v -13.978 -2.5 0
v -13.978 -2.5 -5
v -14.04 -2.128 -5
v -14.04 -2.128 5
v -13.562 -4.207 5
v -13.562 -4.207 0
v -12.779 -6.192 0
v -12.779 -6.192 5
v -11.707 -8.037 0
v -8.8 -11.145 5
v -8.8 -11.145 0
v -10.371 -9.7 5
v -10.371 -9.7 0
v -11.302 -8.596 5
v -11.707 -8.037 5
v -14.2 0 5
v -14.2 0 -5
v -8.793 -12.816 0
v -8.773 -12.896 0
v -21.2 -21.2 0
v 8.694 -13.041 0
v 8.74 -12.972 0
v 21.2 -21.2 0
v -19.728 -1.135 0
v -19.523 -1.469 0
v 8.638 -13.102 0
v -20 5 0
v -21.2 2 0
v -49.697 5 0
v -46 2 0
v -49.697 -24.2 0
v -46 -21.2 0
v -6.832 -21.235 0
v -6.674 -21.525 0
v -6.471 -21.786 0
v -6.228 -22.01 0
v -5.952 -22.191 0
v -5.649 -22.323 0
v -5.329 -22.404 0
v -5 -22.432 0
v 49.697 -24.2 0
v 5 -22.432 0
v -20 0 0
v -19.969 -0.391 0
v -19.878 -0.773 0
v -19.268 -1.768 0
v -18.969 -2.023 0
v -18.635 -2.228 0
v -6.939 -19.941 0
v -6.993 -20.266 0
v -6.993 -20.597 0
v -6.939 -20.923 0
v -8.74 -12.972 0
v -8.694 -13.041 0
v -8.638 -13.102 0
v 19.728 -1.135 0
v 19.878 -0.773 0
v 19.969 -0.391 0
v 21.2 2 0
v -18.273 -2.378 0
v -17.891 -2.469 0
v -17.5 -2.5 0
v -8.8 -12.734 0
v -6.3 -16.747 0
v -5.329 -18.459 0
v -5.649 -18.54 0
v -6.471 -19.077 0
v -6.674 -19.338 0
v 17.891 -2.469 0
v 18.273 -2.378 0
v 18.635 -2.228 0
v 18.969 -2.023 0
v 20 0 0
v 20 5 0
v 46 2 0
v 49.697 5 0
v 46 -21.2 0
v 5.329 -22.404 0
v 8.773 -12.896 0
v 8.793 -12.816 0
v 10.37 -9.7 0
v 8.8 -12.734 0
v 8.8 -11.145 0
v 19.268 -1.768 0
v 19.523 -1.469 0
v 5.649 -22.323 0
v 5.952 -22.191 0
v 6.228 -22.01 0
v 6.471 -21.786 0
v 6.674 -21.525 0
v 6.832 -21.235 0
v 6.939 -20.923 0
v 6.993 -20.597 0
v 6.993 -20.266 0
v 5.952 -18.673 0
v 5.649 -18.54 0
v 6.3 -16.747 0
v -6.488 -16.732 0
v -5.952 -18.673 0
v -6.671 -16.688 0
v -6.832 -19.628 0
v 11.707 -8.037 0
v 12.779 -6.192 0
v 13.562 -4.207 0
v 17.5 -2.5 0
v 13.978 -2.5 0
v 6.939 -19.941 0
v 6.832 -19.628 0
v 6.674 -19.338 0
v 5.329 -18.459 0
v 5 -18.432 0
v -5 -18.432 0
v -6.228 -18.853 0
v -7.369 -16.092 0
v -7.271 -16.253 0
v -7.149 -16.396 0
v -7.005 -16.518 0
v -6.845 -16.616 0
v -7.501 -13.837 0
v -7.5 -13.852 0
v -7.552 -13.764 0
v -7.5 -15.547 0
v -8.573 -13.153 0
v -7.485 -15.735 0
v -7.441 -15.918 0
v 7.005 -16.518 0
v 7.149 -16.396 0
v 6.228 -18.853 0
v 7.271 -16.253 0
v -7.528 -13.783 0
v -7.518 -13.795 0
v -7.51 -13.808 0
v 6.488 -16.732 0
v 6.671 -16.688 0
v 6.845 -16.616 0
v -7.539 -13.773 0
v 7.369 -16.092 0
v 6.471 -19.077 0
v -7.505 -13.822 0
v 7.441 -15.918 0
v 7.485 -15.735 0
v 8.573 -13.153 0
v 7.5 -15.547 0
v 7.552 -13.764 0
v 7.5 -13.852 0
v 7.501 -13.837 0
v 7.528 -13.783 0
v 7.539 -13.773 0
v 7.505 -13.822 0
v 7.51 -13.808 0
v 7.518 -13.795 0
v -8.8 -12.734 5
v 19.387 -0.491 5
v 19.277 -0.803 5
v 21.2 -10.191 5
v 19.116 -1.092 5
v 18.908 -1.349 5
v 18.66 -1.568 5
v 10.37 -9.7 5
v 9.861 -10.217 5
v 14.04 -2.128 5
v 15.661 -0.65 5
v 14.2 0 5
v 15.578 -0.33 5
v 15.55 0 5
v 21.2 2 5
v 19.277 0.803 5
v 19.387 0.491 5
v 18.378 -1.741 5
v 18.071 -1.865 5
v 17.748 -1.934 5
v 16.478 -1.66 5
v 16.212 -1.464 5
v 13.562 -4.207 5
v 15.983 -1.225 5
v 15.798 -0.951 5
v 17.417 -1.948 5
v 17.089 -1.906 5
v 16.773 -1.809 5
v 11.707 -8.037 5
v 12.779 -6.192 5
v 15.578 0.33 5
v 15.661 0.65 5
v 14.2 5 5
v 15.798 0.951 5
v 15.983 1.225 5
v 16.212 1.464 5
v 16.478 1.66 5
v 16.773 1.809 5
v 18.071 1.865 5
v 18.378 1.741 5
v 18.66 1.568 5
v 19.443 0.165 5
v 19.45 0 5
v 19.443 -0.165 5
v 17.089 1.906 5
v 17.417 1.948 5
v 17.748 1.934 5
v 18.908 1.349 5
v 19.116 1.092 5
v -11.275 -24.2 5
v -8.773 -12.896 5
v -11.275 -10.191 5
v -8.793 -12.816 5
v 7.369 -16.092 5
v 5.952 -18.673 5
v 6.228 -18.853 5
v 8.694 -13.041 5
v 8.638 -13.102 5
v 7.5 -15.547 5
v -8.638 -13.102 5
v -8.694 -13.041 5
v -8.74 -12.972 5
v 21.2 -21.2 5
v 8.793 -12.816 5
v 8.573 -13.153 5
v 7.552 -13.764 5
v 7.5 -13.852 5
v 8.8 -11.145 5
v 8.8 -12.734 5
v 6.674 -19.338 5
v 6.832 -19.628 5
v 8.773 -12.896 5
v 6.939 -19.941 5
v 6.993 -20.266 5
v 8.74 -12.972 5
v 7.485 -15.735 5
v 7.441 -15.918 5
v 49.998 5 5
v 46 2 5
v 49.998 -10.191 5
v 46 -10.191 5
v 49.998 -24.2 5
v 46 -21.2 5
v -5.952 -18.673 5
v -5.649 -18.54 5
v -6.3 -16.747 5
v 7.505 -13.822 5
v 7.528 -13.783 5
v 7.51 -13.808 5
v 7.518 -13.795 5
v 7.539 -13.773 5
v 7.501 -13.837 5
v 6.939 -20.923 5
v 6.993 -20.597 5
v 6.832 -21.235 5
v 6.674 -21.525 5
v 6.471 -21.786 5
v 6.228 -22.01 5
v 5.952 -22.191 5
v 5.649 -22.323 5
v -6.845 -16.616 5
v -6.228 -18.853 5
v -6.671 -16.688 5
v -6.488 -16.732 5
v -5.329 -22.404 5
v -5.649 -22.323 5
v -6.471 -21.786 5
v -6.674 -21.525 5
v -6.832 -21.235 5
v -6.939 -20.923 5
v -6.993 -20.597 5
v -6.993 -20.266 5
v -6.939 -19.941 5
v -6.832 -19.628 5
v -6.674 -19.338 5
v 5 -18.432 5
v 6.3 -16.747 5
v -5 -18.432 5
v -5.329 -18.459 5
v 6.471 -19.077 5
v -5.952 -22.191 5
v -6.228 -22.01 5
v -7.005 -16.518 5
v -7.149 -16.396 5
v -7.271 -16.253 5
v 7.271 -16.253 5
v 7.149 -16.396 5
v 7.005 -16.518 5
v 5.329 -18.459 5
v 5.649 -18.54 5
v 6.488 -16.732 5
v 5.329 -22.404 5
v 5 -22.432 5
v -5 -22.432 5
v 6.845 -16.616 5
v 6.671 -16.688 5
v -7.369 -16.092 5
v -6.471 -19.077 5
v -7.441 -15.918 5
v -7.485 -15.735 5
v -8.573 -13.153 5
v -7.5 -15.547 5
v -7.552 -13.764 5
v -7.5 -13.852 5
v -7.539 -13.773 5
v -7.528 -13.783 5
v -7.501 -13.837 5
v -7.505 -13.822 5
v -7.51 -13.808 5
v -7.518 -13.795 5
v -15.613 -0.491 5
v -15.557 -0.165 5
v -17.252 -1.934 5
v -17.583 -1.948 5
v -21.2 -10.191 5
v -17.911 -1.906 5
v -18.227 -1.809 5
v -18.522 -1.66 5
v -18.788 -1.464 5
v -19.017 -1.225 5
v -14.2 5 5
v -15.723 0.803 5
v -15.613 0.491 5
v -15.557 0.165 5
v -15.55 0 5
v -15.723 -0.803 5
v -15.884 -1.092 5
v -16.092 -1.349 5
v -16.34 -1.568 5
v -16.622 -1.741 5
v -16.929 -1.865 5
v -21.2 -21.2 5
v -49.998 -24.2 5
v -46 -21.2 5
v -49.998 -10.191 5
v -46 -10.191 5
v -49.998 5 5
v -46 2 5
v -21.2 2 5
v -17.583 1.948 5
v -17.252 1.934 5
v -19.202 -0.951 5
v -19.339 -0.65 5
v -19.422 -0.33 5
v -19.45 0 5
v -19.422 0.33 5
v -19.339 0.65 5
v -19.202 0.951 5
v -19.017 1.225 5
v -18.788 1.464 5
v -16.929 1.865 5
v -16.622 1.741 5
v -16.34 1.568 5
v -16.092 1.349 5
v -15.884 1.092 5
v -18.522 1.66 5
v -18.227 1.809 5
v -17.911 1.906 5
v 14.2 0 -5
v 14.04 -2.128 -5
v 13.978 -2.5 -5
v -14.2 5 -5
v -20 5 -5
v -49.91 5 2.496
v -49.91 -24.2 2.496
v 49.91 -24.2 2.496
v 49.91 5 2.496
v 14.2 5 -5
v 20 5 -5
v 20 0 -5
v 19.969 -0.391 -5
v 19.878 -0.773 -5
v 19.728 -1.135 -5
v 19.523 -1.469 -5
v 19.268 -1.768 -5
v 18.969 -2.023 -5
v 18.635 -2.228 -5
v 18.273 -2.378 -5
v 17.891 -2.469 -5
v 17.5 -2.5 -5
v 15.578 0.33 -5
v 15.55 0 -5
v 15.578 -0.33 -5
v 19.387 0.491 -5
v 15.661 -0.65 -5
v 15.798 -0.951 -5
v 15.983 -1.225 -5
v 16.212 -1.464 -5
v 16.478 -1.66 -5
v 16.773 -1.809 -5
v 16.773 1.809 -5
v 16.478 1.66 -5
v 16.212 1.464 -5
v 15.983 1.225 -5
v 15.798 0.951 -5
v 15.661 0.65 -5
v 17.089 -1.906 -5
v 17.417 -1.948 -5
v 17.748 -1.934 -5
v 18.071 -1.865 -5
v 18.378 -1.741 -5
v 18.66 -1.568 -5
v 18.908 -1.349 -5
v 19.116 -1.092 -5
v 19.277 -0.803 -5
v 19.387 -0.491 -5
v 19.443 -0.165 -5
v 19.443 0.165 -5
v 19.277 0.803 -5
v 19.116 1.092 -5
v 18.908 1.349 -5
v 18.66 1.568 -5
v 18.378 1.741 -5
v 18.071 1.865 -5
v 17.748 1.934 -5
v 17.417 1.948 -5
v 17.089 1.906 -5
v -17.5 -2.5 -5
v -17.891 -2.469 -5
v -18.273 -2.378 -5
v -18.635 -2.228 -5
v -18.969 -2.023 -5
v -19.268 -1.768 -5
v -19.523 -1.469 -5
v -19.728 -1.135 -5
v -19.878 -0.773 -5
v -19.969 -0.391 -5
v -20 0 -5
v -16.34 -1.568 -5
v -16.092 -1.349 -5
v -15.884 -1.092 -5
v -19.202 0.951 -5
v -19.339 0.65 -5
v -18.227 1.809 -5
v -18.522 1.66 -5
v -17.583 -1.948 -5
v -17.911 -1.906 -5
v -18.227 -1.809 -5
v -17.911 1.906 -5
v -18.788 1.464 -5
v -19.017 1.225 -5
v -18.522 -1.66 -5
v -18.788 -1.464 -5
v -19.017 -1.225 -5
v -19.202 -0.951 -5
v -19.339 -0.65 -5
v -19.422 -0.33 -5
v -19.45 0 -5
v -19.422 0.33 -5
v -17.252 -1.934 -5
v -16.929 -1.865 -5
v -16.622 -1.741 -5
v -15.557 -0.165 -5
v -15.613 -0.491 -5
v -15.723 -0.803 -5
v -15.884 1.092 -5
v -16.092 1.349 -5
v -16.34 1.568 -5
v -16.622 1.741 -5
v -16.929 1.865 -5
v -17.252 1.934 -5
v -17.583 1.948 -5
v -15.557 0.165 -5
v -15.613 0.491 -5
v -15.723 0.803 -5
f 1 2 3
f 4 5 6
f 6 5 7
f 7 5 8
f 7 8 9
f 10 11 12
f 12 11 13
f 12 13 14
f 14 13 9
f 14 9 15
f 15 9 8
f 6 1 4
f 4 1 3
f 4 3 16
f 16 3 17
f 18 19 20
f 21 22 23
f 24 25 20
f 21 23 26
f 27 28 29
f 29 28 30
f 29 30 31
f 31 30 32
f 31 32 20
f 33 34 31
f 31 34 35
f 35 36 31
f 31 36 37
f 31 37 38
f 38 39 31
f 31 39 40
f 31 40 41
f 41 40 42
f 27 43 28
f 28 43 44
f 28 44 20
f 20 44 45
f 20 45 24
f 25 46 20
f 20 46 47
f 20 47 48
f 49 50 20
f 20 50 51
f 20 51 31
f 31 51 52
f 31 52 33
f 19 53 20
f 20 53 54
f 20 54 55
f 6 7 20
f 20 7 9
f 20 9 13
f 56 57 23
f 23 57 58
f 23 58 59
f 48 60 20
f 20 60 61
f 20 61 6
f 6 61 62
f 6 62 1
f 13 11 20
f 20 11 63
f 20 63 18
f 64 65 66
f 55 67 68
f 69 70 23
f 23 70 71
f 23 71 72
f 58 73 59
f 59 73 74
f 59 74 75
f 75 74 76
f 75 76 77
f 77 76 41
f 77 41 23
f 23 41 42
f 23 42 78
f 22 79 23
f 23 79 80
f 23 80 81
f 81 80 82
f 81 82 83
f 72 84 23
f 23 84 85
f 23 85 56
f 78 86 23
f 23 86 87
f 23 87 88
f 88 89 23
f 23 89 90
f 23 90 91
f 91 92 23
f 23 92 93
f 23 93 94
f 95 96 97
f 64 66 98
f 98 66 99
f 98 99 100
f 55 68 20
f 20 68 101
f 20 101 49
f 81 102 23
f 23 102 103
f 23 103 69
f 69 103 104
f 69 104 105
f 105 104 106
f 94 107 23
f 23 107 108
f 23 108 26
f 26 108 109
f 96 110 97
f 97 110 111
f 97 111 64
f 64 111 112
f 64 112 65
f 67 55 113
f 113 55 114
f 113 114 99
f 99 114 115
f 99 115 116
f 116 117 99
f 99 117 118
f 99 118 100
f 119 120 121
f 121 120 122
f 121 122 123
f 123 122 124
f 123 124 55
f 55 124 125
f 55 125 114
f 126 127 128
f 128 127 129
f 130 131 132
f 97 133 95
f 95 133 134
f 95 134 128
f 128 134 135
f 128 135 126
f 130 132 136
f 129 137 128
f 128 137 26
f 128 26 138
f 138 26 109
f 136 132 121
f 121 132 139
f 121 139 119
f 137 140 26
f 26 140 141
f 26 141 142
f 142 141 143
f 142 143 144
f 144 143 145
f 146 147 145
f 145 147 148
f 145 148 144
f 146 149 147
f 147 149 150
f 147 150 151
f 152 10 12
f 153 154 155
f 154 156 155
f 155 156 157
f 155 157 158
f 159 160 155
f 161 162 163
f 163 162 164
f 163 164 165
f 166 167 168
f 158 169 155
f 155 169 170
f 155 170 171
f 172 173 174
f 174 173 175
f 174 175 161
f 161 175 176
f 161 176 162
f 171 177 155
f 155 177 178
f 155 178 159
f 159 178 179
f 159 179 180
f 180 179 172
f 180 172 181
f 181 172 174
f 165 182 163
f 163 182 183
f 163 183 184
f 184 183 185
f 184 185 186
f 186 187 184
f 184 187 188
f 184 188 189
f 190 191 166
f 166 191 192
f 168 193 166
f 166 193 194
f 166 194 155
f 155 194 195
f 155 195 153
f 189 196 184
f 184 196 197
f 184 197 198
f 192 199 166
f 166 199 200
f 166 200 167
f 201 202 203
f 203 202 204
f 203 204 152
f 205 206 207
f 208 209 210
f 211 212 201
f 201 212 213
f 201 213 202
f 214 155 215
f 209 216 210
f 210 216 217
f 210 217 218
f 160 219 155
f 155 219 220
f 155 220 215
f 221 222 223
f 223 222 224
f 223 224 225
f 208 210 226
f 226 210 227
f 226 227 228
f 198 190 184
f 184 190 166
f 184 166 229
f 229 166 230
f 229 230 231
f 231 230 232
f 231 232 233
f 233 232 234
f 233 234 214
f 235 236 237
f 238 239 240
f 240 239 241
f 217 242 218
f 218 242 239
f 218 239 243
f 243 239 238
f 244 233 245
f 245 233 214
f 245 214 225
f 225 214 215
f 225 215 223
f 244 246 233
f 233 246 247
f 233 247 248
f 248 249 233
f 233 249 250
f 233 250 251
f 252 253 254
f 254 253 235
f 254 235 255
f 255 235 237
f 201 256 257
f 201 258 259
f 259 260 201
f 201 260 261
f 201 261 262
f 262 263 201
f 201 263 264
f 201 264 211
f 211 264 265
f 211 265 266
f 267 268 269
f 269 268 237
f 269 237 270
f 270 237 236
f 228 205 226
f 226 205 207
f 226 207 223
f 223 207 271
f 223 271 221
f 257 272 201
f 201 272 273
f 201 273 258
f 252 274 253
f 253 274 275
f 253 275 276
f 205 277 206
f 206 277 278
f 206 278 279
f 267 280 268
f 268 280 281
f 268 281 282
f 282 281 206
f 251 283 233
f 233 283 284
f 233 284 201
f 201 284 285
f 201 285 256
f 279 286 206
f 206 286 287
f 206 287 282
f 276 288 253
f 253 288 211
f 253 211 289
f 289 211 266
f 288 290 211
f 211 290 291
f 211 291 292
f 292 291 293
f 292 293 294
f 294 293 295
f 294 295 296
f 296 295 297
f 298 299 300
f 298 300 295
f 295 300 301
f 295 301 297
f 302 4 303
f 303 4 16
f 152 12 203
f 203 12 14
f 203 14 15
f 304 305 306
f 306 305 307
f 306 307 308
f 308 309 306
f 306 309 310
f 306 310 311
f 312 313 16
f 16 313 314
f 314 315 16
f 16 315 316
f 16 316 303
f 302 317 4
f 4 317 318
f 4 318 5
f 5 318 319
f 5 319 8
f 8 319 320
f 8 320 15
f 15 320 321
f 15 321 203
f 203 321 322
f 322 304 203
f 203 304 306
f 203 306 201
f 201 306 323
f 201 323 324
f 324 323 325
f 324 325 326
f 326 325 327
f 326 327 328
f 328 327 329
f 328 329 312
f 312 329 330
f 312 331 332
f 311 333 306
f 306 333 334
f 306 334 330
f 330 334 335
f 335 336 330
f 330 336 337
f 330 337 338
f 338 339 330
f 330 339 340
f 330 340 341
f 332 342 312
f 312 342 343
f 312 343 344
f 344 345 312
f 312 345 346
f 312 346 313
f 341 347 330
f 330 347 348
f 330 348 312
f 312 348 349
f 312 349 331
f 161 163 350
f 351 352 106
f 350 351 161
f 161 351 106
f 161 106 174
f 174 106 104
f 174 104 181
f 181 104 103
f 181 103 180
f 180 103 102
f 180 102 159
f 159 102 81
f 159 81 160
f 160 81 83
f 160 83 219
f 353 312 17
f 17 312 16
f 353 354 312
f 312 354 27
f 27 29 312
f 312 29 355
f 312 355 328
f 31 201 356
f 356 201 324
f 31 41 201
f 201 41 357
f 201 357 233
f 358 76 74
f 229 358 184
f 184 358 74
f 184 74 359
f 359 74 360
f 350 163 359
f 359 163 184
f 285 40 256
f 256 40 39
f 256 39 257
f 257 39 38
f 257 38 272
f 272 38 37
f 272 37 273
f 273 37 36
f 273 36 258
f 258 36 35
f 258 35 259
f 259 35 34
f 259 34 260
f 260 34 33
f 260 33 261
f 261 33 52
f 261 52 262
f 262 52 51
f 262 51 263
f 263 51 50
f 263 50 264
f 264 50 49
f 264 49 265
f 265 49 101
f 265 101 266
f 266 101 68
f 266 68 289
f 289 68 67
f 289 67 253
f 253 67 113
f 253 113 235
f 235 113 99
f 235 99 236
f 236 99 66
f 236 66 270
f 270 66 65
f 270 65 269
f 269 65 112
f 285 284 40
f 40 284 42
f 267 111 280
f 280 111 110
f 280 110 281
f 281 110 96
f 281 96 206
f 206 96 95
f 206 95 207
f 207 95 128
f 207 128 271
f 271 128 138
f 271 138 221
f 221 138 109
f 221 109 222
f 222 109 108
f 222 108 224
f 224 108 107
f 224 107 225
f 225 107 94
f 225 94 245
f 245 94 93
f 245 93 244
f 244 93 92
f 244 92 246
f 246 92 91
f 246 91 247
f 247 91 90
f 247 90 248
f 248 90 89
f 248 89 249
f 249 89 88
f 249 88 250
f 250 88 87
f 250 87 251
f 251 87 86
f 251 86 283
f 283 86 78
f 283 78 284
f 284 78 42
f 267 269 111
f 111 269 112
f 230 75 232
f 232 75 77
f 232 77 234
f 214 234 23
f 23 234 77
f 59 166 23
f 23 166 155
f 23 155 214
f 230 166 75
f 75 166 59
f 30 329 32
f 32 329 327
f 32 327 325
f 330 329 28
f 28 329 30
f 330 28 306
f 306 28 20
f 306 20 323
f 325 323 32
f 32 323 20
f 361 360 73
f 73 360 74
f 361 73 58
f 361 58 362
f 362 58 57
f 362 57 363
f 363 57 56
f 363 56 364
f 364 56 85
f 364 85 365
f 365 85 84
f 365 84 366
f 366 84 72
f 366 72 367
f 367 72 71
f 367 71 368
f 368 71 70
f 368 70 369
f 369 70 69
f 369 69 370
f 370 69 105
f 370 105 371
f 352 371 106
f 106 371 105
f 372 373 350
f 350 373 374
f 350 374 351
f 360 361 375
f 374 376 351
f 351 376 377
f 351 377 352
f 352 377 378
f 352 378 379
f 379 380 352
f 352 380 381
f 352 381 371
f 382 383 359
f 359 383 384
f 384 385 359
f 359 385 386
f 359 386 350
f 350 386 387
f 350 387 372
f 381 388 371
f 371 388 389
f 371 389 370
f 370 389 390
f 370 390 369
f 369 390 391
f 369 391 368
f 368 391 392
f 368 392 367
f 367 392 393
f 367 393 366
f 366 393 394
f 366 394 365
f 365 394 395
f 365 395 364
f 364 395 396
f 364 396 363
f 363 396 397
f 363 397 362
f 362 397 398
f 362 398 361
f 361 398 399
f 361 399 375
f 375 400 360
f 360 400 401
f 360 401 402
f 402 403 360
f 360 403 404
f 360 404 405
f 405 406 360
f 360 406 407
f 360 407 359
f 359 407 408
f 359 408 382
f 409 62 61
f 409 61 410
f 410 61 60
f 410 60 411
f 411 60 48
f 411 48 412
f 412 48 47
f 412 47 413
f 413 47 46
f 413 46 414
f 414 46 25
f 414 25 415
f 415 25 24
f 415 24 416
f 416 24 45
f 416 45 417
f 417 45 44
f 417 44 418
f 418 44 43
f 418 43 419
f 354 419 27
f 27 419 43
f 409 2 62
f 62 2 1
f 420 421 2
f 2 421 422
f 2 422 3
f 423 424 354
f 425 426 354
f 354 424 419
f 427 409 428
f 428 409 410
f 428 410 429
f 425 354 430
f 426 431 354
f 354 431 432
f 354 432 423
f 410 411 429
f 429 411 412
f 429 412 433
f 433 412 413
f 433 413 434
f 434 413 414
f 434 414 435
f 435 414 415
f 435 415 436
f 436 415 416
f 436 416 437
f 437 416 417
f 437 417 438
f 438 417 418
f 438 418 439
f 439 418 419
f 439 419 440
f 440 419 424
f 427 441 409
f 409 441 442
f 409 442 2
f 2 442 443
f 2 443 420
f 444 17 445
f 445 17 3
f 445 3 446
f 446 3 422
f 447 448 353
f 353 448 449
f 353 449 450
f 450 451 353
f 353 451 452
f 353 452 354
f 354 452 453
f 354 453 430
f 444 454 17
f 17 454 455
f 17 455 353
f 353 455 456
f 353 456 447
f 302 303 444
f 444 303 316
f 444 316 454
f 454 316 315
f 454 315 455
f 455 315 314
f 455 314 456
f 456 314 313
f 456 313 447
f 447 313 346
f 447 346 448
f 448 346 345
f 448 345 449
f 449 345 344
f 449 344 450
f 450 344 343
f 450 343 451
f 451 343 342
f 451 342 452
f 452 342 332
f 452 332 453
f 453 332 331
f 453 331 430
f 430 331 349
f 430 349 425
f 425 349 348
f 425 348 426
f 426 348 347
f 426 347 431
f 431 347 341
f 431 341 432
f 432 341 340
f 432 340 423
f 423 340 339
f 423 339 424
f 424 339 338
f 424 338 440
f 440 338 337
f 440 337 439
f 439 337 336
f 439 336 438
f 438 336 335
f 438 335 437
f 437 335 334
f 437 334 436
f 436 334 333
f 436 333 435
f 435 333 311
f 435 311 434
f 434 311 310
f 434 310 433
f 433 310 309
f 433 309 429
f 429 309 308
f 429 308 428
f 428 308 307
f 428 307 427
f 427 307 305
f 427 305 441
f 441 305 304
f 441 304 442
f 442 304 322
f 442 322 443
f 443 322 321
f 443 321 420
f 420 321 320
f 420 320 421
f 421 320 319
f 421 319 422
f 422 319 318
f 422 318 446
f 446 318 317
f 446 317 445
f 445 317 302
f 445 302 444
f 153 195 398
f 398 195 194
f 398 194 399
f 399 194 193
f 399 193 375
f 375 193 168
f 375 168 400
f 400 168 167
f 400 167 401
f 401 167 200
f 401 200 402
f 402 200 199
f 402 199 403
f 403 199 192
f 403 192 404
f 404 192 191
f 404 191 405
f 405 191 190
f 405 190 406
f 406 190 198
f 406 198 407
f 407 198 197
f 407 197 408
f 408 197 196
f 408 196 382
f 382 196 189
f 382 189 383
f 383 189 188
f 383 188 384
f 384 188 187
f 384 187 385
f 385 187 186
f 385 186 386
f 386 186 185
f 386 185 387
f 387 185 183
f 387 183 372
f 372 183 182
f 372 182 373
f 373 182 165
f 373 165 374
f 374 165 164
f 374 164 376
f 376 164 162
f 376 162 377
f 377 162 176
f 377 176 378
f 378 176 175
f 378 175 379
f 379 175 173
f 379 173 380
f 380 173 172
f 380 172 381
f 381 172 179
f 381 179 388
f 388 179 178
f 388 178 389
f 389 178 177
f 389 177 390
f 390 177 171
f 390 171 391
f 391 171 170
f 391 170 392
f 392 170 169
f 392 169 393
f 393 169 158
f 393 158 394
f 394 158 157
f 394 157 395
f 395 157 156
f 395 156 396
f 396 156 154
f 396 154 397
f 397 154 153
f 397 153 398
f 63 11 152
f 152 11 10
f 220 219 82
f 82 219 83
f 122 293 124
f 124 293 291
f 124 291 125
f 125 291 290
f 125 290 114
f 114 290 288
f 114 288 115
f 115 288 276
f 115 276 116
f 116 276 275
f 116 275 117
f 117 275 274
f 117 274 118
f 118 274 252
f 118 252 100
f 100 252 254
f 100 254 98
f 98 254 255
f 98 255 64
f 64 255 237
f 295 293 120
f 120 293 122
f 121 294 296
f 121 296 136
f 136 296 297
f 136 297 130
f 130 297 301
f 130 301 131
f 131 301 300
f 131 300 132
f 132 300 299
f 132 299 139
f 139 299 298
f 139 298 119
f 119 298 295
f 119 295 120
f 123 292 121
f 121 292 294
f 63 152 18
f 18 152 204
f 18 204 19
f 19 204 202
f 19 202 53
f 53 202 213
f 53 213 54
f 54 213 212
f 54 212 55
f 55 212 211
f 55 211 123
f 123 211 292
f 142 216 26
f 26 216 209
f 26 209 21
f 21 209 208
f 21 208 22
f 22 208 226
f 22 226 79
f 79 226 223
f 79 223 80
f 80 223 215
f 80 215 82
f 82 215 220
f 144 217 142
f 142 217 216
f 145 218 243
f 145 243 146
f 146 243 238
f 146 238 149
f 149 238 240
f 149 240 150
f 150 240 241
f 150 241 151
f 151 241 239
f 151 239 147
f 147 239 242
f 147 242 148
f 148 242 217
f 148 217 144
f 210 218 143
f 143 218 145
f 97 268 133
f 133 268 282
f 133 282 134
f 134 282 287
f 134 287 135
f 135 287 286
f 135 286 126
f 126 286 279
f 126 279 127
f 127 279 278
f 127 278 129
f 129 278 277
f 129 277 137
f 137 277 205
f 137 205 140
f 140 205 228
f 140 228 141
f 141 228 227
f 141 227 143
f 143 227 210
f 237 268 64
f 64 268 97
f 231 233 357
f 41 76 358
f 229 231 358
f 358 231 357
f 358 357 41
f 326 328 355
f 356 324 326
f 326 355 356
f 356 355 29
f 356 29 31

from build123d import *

# Parameters (mm, degrees)
BOSS_EXTRUDE1_DEPTH = 5
SKETCH2_W           = 24.8
SKETCH2_H           = 23.2
CUT_EXTRUDE1_DEPTH  = 5
BOSS_EXTRUDE2_START = 5
BOSS_EXTRUDE2_DEPTH = 5
SKETCH4_R           = 1.95
CUT_EXTRUDE2_DEPTH  = 10
CUT_EXTRUDE3_DEPTH  = 5
CUT_EXTRUDE4_DEPTH  = 29.2


with BuildPart() as part:
    # Sketch1 → Boss-Extrude1 (new body)
    with BuildSketch(Plane.XY):
        with BuildLine():
            Line((14.2, 0), (14.2, 5))
            Line((14.2, 5), (50, 5))
            Line((50, 5), (50, -24.2))
            Line((50, -24.2), (-50, -24.2))
            Line((-50, -24.2), (-50, 5))
            Line((-50, 5), (-14.2, 5))
            Line((-14.2, 5), (-14.2, 0))
            ThreePointArc((-14.2, 0), (0, -14.2), (14.2, 0))
        make_face()
        with BuildLine():
            Line((-5, -18.431553888), (5, -18.431553888))
            ThreePointArc((5, -18.431553888), (7, -20.431553888), (5, -22.431553888))
            Line((5, -22.431553888), (-5, -22.431553888))
            ThreePointArc((-5, -22.431553888), (-7, -20.431553888), (-5, -18.431553888))
        make_face(mode=Mode.SUBTRACT)
    extrude(amount=BOSS_EXTRUDE1_DEPTH)

    # Sketch2 → Cut-Extrude1 (cut)
    with BuildSketch(Plane.XY.offset(5)):
        with Locations((-33.6, -9.6)):
            Rectangle(SKETCH2_W, SKETCH2_H)
        with Locations((33.6, -9.6)):
            Rectangle(SKETCH2_W, SKETCH2_H)
    extrude(amount=-CUT_EXTRUDE1_DEPTH, mode=Mode.SUBTRACT)

    # Sketch3 → Boss-Extrude2 (add)
    with BuildSketch(Plane(origin=(0, 0, 0), x_dir=(-1, 0, 0), z_dir=(0, 0, -1)).offset(BOSS_EXTRUDE2_START)):
        with BuildLine():
            Line((-20, 5), (-20, 0))
            ThreePointArc((-20, 0), (-19.267766953, -1.767766953), (-17.5, -2.5))
            Line((-17.5, -2.5), (-13.978197309, -2.5))
            ThreePointArc((-13.978197309, -2.5), (-14.144440636, -1.25491), (-14.2, 0))
            Line((-14.2, 0), (-14.2, 5))
            Line((-14.2, 5), (-20, 5))
        make_face()
        with BuildLine():
            ThreePointArc((14.2, 0), (14.144440636, -1.25491), (13.978197309, -2.5))
            Line((13.978197309, -2.5), (17.5, -2.5))
            ThreePointArc((17.5, -2.5), (19.267766953, -1.767766953), (20, 0))
            Line((20, 0), (20, 5))
            Line((20, 5), (14.2, 5))
            Line((14.2, 5), (14.2, 0))
        make_face()
    extrude(amount=-BOSS_EXTRUDE2_DEPTH)

    # Sketch4 → Cut-Extrude2 (cut)
    with BuildSketch(Plane(origin=(0, 0, -5), x_dir=(-1, 0, 0), z_dir=(0, 0, -1))):
        with Locations((-17.5, 0)):
            Circle(SKETCH4_R)
        with Locations((17.5, 0)):
            Circle(SKETCH4_R)
    extrude(amount=-CUT_EXTRUDE2_DEPTH, mode=Mode.SUBTRACT)

    # Sketch5 → Cut-Extrude3 (cut)
    with BuildSketch(Plane.XY.offset(5)):
        with BuildLine():
            Line((-7.5, -15.547171584), (-7.5, -13.852075657))
            ThreePointArc((-7.5, -13.852075657), (-7.513947323, -13.801135135), (-7.551898734, -13.764404292))
            ThreePointArc((-7.551898734, -13.764404292), (-8.068261954, -13.46822739), (-8.573026316, -13.15268869))
            ThreePointArc((-8.573026316, -13.15268869), (-8.739609576, -12.972022031), (-8.8, -12.733813254))
            Line((-8.8, -12.733813254), (-8.8, -11.099557513))
            Line((-8.8, -11.099557513), (8.8, -11.099557513))
            Line((8.8, -11.099557513), (8.8, -12.733813254))
            ThreePointArc((8.8, -12.733813254), (8.739609576, -12.972022031), (8.573026316, -13.15268869))
            ThreePointArc((8.573026316, -13.15268869), (8.068261954, -13.46822739), (7.551898734, -13.764404292))
            ThreePointArc((7.551898734, -13.764404292), (7.513947323, -13.801135135), (7.5, -13.852075657))
            Line((7.5, -13.852075657), (7.5, -15.547171584))
            ThreePointArc((7.5, -15.547171584), (7.148528137, -16.395699721), (6.3, -16.747171584))
            Line((6.3, -16.747171584), (-6.3, -16.747171584))
            ThreePointArc((-6.3, -16.747171584), (-7.148528137, -16.395699721), (-7.5, -15.547171584))
        make_face()
    extrude(amount=-CUT_EXTRUDE3_DEPTH, mode=Mode.SUBTRACT)

    # Sketch7 → Cut-Extrude4 (cut)
    with BuildSketch(Plane(origin=(0, 5, 0), x_dir=(1, 0, 0), z_dir=(0, 1, 0))):
        with BuildLine():
            Line((49.696579359, 0), (50, 0))
            Line((50, 0), (50, -5))
            Line((50, -5), (49.997973832, -5.049874854))
            ThreePointArc((49.997973832, -5.049874854), (49.911184048, -2.521123203), (49.696579359, 0))
        make_face()
        with BuildLine():
            Line((-50, -5), (-49.997973832, -5.049874854))
            ThreePointArc((-49.997973832, -5.049874854), (-49.911184048, -2.521123203), (-49.696579359, 0))
            Line((-49.696579359, 0), (-50, 0))
            Line((-50, 0), (-50, -5))
        make_face()
    extrude(amount=-CUT_EXTRUDE4_DEPTH, mode=Mode.SUBTRACT)


solid = part.part
